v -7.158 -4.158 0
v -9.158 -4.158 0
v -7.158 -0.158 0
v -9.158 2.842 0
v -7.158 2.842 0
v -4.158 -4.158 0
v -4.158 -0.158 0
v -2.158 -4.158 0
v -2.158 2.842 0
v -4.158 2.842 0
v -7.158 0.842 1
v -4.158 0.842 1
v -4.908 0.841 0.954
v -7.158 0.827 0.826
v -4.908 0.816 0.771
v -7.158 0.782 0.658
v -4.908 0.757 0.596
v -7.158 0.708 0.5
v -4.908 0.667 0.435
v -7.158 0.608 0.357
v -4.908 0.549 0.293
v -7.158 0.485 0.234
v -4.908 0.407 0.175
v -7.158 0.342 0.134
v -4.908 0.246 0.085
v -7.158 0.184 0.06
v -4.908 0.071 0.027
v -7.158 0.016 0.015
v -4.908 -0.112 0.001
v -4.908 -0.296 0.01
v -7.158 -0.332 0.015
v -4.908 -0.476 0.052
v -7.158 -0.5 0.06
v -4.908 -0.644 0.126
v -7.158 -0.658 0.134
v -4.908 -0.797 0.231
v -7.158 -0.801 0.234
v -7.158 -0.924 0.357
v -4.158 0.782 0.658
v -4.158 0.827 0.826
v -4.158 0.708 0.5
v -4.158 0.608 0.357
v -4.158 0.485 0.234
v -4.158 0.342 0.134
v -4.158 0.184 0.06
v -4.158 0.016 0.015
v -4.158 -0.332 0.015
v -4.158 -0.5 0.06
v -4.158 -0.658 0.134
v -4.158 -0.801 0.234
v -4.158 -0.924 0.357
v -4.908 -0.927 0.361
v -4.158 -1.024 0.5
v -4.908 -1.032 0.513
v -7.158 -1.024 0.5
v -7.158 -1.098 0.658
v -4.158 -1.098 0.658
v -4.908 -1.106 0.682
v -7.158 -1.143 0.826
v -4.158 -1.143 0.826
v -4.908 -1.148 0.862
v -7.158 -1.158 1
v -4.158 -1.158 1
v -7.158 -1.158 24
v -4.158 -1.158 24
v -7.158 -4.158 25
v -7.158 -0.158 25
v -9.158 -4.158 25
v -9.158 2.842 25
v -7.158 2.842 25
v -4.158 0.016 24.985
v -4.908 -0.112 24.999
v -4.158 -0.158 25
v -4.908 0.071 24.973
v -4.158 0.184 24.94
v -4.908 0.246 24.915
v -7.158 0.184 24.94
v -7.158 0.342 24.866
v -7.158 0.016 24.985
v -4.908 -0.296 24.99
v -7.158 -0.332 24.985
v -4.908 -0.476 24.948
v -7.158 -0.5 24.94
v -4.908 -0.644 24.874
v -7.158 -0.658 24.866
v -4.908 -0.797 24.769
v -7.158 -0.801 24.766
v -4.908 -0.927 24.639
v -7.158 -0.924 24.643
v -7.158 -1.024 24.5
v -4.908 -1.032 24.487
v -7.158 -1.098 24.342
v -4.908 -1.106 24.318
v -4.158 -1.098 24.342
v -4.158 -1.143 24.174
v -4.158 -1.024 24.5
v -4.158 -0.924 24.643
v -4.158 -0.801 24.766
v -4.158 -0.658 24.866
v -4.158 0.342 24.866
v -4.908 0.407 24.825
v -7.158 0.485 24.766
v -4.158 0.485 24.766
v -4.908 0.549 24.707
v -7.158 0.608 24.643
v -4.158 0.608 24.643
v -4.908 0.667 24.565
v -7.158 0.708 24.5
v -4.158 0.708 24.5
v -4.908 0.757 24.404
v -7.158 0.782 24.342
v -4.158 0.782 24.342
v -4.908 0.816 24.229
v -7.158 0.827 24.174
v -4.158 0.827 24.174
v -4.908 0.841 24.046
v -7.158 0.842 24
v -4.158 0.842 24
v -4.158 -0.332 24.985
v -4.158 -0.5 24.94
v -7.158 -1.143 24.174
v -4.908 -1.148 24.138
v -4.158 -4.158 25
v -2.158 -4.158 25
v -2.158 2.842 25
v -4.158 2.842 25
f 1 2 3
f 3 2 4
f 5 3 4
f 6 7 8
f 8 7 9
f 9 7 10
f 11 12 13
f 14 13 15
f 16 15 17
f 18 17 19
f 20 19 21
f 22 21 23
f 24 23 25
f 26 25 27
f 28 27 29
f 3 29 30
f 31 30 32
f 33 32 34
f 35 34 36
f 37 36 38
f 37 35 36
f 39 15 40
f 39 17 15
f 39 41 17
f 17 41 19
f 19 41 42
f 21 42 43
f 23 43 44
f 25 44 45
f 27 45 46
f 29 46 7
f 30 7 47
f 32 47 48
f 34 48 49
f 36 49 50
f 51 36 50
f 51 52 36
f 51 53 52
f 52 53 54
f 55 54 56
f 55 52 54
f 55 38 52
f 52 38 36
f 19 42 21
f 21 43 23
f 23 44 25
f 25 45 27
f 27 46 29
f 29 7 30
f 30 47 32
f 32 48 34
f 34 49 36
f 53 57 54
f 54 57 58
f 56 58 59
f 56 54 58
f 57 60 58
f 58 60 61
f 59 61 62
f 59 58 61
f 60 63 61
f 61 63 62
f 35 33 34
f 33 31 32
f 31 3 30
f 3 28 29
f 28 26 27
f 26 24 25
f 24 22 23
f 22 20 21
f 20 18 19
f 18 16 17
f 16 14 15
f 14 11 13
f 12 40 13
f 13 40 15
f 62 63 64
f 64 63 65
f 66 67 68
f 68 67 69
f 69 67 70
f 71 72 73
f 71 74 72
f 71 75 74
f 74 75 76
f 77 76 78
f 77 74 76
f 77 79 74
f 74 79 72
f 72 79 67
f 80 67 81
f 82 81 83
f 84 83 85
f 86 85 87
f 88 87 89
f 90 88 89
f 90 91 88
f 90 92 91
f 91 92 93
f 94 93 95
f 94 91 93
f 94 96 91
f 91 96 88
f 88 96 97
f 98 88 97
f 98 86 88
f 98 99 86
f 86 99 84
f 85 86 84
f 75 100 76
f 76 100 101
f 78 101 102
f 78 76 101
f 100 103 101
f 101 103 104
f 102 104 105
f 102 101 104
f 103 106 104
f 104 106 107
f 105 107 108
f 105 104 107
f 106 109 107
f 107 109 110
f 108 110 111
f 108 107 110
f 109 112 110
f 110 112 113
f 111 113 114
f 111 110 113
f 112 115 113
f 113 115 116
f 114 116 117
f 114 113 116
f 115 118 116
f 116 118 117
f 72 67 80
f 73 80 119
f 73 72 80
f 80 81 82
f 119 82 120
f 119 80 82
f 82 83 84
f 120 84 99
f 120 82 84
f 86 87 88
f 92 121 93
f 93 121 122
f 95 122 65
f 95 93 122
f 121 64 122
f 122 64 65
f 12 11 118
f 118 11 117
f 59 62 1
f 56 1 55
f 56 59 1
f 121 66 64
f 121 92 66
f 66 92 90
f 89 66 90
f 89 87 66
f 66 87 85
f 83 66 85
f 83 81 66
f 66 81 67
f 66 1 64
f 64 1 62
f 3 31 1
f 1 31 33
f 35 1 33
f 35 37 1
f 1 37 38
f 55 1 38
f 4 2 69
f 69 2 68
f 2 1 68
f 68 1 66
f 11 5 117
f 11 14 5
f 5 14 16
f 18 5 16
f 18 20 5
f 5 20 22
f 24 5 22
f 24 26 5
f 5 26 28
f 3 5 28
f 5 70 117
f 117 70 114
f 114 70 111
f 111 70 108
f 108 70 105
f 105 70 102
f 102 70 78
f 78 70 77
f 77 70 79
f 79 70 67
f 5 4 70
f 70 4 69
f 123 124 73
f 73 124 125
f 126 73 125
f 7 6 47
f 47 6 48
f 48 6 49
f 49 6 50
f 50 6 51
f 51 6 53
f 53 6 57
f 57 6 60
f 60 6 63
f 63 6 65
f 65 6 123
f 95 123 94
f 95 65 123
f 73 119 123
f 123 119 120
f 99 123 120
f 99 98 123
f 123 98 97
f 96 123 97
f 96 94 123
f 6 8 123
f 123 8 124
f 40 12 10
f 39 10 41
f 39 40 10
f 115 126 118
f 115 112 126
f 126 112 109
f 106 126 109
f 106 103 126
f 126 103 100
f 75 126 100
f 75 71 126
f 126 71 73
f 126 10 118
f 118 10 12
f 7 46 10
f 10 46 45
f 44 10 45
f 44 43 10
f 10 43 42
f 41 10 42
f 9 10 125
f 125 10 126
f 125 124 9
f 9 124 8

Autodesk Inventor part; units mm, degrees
ref_plane "YZ Plane" through (0, 0, 0) normal (1, 0, 0) x (0, 1, 0)
ref_plane "XZ Plane" through (0, 0, 0) normal (0, 1, 0) x (-1, 0, 0)
ref_plane "XY Plane" through (0, 0, 0) normal (0, 0, 1) x (1, 0, 0)
sketch "Sketch1" plane through (0, 0, 0) normal (0, 0, 1) x (1, 0, 0)
  line L0 (-9.1579, 2.8421) -> (-7.1579, 2.8421)
  line L1 (-7.1579, 2.8421) -> (-7.1579, -1.1579)
  line L2 (-7.1579, -1.1579) -> (-9.1579, -1.1579)
  line L3 (-9.1579, -1.1579) -> (-9.1579, 2.8421)
  line L4 (-9.1579, 0.8421) -> (-2.1579, 0.8421)
  line L5 (-2.1579, 0.8421) -> (-2.1579, -1.1579)
  line L6 (-2.1579, -1.1579) -> (-9.1579, -1.1579)
  line L7 (-9.1579, -1.1579) -> (-9.1579, 0.8421)
  line L8 (-2.1579, -1.1579) -> (-4.1579, -1.1579)
  line L9 (-4.1579, -1.1579) -> (-4.1579, 2.8421)
  line L10 (-4.1579, 2.8421) -> (-2.1579, 2.8421)
  line L11 (-2.1579, 2.8421) -> (-2.1579, -1.1579)
  line L12 (-9.1579, 0.8421) -> (-7.1579, 0.8421)
  line L13 (-7.1579, 0.8421) -> (-7.1579, -4.1579)
  line L14 (-7.1579, -4.1579) -> (-9.1579, -4.1579)
  line L15 (-9.1579, -4.1579) -> (-9.1579, 0.8421)
  line L16 (-2.1579, 0.8421) -> (-4.1579, 0.8421)
  line L17 (-4.1579, 0.8421) -> (-4.1579, -4.1579)
  line L18 (-4.1579, -4.1579) -> (-2.1579, -4.1579)
  line L19 (-2.1579, -4.1579) -> (-2.1579, 0.8421)
  point P0 (0, 0)
  dimension "d0" = 2
  dimension "d1" = 2
  dimension "d2" = 3
  dimension "d3" = 3
  dimension "d4" = 2
  dimension "d5" = 2
extrude "Extrusion1" add sketch "Sketch1" along normal blind 25
fillet "Fillet1" radius 1 2 edges at (-5.6579, 0.8421, 25) (-5.6579, -1.1579, 25)
fillet "Fillet2" radius 1 2 edges at (-5.6579, 0.8421, 0) (-5.6579, -1.1579, 0)
properties part number "Cable Sliding Assistor"
